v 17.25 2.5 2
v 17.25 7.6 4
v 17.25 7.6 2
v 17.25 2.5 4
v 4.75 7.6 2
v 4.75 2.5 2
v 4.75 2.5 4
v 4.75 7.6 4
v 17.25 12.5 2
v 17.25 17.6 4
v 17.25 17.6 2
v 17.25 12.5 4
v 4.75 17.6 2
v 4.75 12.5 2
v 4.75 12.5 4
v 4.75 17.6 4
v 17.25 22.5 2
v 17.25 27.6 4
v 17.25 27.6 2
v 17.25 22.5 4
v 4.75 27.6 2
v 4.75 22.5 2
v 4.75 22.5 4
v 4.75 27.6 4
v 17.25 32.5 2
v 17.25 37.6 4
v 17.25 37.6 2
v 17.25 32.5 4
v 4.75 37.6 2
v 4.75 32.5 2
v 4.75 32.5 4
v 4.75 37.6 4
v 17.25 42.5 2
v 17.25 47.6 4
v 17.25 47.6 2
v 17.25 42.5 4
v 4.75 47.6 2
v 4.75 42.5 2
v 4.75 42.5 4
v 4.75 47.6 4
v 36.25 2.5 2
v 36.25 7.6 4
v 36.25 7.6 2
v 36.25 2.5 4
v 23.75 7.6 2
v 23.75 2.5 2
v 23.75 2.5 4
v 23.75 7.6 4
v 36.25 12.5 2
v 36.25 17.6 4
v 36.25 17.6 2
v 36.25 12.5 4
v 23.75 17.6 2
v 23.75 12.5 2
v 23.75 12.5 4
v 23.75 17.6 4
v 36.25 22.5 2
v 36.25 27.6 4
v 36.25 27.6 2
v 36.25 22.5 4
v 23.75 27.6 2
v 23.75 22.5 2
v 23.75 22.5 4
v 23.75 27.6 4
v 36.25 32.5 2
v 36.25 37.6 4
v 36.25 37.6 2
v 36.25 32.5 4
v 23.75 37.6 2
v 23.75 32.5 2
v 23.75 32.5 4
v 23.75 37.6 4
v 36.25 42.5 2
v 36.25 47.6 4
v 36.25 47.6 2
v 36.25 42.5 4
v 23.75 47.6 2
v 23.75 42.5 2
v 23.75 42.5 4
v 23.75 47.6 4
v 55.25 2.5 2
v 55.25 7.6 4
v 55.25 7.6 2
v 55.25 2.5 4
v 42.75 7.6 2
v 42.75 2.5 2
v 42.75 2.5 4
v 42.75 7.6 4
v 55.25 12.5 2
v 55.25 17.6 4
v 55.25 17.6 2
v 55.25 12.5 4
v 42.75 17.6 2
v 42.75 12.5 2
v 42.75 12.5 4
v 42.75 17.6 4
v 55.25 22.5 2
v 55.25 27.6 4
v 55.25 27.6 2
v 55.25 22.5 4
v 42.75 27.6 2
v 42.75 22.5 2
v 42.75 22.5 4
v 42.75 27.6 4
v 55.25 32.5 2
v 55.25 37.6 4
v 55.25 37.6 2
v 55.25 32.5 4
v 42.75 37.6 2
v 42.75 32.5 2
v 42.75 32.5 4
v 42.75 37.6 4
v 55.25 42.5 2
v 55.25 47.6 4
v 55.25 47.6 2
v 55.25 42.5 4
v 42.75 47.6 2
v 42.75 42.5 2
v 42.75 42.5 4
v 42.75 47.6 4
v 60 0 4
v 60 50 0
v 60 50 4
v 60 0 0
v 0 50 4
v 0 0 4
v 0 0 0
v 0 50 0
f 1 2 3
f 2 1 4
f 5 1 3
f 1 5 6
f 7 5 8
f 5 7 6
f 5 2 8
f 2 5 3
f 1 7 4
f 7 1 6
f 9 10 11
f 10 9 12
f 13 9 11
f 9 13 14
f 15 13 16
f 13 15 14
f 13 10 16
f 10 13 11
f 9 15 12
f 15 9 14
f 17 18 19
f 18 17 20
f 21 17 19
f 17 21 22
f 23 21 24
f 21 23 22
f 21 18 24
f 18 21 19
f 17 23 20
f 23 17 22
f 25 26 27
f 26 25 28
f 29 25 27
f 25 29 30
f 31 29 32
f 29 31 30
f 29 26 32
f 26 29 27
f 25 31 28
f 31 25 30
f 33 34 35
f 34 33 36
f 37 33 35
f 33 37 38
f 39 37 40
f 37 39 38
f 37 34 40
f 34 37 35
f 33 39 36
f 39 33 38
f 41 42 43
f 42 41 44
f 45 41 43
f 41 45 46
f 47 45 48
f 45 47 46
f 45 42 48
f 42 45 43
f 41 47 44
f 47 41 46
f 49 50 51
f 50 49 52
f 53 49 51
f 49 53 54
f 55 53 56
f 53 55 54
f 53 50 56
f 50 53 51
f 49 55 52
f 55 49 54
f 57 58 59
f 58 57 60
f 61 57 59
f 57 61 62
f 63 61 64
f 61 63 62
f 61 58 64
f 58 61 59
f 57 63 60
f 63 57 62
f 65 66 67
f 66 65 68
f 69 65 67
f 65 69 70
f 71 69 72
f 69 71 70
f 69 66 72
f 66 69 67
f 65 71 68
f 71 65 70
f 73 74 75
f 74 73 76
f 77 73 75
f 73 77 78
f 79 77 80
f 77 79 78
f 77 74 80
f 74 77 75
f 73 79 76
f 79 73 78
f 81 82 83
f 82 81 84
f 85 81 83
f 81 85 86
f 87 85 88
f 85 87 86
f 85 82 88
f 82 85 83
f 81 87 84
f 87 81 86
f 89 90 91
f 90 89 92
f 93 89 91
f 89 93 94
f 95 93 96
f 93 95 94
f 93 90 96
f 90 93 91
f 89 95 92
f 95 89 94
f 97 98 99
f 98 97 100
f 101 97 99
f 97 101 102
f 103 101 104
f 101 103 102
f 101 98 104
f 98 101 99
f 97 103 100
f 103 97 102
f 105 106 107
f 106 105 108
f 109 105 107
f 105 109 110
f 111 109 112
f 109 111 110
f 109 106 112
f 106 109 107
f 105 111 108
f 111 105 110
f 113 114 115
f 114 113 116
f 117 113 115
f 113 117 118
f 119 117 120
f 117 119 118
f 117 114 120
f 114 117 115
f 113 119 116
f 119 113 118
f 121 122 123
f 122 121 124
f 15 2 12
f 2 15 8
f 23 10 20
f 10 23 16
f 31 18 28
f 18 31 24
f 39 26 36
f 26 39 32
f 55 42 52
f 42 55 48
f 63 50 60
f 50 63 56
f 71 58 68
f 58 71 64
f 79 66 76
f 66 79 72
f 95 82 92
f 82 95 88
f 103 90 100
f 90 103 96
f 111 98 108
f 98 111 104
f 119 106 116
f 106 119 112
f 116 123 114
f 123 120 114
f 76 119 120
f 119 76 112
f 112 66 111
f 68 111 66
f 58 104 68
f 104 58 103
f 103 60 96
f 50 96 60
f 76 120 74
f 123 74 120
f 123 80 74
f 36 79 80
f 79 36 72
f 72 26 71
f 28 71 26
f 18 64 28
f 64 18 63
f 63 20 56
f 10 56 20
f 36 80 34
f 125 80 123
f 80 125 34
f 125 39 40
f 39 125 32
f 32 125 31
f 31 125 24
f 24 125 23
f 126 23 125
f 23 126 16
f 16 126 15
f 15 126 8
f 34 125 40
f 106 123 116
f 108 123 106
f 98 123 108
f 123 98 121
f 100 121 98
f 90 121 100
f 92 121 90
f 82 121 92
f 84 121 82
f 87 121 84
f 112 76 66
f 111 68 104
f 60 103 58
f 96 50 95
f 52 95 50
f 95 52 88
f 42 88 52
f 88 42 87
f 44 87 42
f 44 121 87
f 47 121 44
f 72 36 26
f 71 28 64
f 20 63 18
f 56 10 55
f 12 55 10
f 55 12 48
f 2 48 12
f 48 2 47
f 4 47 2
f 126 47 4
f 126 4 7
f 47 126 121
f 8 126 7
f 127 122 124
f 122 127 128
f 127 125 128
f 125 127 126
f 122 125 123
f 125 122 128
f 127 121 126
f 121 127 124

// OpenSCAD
usba_x = 12.5;
usba_y = 5.1;
usba_z = 12;

spacing_x = 19;
spacing_y = 10;

base_x = 60;
base_y = 50;
z_offset = 2;
base_z = 4; //usba_z+z_offset;

echo(base_y/spacing_x);

module base()
{    
    cube([base_x, base_y, base_z]);
}

difference()
{
    base();
    for(x=[spacing_x/4: spacing_x : floor(base_x) - (spacing_x/4)])
    {
        for(y=[spacing_y/4 : spacing_y : floor(base_y) - (spacing_y/4)])
        {
            echo(x);
            translate([x,y,z_offset]) usba_cutout();
        }
    }
    }


module usba_cutout()
{
  cube([usba_x, usba_y, usba_z]);  
}
